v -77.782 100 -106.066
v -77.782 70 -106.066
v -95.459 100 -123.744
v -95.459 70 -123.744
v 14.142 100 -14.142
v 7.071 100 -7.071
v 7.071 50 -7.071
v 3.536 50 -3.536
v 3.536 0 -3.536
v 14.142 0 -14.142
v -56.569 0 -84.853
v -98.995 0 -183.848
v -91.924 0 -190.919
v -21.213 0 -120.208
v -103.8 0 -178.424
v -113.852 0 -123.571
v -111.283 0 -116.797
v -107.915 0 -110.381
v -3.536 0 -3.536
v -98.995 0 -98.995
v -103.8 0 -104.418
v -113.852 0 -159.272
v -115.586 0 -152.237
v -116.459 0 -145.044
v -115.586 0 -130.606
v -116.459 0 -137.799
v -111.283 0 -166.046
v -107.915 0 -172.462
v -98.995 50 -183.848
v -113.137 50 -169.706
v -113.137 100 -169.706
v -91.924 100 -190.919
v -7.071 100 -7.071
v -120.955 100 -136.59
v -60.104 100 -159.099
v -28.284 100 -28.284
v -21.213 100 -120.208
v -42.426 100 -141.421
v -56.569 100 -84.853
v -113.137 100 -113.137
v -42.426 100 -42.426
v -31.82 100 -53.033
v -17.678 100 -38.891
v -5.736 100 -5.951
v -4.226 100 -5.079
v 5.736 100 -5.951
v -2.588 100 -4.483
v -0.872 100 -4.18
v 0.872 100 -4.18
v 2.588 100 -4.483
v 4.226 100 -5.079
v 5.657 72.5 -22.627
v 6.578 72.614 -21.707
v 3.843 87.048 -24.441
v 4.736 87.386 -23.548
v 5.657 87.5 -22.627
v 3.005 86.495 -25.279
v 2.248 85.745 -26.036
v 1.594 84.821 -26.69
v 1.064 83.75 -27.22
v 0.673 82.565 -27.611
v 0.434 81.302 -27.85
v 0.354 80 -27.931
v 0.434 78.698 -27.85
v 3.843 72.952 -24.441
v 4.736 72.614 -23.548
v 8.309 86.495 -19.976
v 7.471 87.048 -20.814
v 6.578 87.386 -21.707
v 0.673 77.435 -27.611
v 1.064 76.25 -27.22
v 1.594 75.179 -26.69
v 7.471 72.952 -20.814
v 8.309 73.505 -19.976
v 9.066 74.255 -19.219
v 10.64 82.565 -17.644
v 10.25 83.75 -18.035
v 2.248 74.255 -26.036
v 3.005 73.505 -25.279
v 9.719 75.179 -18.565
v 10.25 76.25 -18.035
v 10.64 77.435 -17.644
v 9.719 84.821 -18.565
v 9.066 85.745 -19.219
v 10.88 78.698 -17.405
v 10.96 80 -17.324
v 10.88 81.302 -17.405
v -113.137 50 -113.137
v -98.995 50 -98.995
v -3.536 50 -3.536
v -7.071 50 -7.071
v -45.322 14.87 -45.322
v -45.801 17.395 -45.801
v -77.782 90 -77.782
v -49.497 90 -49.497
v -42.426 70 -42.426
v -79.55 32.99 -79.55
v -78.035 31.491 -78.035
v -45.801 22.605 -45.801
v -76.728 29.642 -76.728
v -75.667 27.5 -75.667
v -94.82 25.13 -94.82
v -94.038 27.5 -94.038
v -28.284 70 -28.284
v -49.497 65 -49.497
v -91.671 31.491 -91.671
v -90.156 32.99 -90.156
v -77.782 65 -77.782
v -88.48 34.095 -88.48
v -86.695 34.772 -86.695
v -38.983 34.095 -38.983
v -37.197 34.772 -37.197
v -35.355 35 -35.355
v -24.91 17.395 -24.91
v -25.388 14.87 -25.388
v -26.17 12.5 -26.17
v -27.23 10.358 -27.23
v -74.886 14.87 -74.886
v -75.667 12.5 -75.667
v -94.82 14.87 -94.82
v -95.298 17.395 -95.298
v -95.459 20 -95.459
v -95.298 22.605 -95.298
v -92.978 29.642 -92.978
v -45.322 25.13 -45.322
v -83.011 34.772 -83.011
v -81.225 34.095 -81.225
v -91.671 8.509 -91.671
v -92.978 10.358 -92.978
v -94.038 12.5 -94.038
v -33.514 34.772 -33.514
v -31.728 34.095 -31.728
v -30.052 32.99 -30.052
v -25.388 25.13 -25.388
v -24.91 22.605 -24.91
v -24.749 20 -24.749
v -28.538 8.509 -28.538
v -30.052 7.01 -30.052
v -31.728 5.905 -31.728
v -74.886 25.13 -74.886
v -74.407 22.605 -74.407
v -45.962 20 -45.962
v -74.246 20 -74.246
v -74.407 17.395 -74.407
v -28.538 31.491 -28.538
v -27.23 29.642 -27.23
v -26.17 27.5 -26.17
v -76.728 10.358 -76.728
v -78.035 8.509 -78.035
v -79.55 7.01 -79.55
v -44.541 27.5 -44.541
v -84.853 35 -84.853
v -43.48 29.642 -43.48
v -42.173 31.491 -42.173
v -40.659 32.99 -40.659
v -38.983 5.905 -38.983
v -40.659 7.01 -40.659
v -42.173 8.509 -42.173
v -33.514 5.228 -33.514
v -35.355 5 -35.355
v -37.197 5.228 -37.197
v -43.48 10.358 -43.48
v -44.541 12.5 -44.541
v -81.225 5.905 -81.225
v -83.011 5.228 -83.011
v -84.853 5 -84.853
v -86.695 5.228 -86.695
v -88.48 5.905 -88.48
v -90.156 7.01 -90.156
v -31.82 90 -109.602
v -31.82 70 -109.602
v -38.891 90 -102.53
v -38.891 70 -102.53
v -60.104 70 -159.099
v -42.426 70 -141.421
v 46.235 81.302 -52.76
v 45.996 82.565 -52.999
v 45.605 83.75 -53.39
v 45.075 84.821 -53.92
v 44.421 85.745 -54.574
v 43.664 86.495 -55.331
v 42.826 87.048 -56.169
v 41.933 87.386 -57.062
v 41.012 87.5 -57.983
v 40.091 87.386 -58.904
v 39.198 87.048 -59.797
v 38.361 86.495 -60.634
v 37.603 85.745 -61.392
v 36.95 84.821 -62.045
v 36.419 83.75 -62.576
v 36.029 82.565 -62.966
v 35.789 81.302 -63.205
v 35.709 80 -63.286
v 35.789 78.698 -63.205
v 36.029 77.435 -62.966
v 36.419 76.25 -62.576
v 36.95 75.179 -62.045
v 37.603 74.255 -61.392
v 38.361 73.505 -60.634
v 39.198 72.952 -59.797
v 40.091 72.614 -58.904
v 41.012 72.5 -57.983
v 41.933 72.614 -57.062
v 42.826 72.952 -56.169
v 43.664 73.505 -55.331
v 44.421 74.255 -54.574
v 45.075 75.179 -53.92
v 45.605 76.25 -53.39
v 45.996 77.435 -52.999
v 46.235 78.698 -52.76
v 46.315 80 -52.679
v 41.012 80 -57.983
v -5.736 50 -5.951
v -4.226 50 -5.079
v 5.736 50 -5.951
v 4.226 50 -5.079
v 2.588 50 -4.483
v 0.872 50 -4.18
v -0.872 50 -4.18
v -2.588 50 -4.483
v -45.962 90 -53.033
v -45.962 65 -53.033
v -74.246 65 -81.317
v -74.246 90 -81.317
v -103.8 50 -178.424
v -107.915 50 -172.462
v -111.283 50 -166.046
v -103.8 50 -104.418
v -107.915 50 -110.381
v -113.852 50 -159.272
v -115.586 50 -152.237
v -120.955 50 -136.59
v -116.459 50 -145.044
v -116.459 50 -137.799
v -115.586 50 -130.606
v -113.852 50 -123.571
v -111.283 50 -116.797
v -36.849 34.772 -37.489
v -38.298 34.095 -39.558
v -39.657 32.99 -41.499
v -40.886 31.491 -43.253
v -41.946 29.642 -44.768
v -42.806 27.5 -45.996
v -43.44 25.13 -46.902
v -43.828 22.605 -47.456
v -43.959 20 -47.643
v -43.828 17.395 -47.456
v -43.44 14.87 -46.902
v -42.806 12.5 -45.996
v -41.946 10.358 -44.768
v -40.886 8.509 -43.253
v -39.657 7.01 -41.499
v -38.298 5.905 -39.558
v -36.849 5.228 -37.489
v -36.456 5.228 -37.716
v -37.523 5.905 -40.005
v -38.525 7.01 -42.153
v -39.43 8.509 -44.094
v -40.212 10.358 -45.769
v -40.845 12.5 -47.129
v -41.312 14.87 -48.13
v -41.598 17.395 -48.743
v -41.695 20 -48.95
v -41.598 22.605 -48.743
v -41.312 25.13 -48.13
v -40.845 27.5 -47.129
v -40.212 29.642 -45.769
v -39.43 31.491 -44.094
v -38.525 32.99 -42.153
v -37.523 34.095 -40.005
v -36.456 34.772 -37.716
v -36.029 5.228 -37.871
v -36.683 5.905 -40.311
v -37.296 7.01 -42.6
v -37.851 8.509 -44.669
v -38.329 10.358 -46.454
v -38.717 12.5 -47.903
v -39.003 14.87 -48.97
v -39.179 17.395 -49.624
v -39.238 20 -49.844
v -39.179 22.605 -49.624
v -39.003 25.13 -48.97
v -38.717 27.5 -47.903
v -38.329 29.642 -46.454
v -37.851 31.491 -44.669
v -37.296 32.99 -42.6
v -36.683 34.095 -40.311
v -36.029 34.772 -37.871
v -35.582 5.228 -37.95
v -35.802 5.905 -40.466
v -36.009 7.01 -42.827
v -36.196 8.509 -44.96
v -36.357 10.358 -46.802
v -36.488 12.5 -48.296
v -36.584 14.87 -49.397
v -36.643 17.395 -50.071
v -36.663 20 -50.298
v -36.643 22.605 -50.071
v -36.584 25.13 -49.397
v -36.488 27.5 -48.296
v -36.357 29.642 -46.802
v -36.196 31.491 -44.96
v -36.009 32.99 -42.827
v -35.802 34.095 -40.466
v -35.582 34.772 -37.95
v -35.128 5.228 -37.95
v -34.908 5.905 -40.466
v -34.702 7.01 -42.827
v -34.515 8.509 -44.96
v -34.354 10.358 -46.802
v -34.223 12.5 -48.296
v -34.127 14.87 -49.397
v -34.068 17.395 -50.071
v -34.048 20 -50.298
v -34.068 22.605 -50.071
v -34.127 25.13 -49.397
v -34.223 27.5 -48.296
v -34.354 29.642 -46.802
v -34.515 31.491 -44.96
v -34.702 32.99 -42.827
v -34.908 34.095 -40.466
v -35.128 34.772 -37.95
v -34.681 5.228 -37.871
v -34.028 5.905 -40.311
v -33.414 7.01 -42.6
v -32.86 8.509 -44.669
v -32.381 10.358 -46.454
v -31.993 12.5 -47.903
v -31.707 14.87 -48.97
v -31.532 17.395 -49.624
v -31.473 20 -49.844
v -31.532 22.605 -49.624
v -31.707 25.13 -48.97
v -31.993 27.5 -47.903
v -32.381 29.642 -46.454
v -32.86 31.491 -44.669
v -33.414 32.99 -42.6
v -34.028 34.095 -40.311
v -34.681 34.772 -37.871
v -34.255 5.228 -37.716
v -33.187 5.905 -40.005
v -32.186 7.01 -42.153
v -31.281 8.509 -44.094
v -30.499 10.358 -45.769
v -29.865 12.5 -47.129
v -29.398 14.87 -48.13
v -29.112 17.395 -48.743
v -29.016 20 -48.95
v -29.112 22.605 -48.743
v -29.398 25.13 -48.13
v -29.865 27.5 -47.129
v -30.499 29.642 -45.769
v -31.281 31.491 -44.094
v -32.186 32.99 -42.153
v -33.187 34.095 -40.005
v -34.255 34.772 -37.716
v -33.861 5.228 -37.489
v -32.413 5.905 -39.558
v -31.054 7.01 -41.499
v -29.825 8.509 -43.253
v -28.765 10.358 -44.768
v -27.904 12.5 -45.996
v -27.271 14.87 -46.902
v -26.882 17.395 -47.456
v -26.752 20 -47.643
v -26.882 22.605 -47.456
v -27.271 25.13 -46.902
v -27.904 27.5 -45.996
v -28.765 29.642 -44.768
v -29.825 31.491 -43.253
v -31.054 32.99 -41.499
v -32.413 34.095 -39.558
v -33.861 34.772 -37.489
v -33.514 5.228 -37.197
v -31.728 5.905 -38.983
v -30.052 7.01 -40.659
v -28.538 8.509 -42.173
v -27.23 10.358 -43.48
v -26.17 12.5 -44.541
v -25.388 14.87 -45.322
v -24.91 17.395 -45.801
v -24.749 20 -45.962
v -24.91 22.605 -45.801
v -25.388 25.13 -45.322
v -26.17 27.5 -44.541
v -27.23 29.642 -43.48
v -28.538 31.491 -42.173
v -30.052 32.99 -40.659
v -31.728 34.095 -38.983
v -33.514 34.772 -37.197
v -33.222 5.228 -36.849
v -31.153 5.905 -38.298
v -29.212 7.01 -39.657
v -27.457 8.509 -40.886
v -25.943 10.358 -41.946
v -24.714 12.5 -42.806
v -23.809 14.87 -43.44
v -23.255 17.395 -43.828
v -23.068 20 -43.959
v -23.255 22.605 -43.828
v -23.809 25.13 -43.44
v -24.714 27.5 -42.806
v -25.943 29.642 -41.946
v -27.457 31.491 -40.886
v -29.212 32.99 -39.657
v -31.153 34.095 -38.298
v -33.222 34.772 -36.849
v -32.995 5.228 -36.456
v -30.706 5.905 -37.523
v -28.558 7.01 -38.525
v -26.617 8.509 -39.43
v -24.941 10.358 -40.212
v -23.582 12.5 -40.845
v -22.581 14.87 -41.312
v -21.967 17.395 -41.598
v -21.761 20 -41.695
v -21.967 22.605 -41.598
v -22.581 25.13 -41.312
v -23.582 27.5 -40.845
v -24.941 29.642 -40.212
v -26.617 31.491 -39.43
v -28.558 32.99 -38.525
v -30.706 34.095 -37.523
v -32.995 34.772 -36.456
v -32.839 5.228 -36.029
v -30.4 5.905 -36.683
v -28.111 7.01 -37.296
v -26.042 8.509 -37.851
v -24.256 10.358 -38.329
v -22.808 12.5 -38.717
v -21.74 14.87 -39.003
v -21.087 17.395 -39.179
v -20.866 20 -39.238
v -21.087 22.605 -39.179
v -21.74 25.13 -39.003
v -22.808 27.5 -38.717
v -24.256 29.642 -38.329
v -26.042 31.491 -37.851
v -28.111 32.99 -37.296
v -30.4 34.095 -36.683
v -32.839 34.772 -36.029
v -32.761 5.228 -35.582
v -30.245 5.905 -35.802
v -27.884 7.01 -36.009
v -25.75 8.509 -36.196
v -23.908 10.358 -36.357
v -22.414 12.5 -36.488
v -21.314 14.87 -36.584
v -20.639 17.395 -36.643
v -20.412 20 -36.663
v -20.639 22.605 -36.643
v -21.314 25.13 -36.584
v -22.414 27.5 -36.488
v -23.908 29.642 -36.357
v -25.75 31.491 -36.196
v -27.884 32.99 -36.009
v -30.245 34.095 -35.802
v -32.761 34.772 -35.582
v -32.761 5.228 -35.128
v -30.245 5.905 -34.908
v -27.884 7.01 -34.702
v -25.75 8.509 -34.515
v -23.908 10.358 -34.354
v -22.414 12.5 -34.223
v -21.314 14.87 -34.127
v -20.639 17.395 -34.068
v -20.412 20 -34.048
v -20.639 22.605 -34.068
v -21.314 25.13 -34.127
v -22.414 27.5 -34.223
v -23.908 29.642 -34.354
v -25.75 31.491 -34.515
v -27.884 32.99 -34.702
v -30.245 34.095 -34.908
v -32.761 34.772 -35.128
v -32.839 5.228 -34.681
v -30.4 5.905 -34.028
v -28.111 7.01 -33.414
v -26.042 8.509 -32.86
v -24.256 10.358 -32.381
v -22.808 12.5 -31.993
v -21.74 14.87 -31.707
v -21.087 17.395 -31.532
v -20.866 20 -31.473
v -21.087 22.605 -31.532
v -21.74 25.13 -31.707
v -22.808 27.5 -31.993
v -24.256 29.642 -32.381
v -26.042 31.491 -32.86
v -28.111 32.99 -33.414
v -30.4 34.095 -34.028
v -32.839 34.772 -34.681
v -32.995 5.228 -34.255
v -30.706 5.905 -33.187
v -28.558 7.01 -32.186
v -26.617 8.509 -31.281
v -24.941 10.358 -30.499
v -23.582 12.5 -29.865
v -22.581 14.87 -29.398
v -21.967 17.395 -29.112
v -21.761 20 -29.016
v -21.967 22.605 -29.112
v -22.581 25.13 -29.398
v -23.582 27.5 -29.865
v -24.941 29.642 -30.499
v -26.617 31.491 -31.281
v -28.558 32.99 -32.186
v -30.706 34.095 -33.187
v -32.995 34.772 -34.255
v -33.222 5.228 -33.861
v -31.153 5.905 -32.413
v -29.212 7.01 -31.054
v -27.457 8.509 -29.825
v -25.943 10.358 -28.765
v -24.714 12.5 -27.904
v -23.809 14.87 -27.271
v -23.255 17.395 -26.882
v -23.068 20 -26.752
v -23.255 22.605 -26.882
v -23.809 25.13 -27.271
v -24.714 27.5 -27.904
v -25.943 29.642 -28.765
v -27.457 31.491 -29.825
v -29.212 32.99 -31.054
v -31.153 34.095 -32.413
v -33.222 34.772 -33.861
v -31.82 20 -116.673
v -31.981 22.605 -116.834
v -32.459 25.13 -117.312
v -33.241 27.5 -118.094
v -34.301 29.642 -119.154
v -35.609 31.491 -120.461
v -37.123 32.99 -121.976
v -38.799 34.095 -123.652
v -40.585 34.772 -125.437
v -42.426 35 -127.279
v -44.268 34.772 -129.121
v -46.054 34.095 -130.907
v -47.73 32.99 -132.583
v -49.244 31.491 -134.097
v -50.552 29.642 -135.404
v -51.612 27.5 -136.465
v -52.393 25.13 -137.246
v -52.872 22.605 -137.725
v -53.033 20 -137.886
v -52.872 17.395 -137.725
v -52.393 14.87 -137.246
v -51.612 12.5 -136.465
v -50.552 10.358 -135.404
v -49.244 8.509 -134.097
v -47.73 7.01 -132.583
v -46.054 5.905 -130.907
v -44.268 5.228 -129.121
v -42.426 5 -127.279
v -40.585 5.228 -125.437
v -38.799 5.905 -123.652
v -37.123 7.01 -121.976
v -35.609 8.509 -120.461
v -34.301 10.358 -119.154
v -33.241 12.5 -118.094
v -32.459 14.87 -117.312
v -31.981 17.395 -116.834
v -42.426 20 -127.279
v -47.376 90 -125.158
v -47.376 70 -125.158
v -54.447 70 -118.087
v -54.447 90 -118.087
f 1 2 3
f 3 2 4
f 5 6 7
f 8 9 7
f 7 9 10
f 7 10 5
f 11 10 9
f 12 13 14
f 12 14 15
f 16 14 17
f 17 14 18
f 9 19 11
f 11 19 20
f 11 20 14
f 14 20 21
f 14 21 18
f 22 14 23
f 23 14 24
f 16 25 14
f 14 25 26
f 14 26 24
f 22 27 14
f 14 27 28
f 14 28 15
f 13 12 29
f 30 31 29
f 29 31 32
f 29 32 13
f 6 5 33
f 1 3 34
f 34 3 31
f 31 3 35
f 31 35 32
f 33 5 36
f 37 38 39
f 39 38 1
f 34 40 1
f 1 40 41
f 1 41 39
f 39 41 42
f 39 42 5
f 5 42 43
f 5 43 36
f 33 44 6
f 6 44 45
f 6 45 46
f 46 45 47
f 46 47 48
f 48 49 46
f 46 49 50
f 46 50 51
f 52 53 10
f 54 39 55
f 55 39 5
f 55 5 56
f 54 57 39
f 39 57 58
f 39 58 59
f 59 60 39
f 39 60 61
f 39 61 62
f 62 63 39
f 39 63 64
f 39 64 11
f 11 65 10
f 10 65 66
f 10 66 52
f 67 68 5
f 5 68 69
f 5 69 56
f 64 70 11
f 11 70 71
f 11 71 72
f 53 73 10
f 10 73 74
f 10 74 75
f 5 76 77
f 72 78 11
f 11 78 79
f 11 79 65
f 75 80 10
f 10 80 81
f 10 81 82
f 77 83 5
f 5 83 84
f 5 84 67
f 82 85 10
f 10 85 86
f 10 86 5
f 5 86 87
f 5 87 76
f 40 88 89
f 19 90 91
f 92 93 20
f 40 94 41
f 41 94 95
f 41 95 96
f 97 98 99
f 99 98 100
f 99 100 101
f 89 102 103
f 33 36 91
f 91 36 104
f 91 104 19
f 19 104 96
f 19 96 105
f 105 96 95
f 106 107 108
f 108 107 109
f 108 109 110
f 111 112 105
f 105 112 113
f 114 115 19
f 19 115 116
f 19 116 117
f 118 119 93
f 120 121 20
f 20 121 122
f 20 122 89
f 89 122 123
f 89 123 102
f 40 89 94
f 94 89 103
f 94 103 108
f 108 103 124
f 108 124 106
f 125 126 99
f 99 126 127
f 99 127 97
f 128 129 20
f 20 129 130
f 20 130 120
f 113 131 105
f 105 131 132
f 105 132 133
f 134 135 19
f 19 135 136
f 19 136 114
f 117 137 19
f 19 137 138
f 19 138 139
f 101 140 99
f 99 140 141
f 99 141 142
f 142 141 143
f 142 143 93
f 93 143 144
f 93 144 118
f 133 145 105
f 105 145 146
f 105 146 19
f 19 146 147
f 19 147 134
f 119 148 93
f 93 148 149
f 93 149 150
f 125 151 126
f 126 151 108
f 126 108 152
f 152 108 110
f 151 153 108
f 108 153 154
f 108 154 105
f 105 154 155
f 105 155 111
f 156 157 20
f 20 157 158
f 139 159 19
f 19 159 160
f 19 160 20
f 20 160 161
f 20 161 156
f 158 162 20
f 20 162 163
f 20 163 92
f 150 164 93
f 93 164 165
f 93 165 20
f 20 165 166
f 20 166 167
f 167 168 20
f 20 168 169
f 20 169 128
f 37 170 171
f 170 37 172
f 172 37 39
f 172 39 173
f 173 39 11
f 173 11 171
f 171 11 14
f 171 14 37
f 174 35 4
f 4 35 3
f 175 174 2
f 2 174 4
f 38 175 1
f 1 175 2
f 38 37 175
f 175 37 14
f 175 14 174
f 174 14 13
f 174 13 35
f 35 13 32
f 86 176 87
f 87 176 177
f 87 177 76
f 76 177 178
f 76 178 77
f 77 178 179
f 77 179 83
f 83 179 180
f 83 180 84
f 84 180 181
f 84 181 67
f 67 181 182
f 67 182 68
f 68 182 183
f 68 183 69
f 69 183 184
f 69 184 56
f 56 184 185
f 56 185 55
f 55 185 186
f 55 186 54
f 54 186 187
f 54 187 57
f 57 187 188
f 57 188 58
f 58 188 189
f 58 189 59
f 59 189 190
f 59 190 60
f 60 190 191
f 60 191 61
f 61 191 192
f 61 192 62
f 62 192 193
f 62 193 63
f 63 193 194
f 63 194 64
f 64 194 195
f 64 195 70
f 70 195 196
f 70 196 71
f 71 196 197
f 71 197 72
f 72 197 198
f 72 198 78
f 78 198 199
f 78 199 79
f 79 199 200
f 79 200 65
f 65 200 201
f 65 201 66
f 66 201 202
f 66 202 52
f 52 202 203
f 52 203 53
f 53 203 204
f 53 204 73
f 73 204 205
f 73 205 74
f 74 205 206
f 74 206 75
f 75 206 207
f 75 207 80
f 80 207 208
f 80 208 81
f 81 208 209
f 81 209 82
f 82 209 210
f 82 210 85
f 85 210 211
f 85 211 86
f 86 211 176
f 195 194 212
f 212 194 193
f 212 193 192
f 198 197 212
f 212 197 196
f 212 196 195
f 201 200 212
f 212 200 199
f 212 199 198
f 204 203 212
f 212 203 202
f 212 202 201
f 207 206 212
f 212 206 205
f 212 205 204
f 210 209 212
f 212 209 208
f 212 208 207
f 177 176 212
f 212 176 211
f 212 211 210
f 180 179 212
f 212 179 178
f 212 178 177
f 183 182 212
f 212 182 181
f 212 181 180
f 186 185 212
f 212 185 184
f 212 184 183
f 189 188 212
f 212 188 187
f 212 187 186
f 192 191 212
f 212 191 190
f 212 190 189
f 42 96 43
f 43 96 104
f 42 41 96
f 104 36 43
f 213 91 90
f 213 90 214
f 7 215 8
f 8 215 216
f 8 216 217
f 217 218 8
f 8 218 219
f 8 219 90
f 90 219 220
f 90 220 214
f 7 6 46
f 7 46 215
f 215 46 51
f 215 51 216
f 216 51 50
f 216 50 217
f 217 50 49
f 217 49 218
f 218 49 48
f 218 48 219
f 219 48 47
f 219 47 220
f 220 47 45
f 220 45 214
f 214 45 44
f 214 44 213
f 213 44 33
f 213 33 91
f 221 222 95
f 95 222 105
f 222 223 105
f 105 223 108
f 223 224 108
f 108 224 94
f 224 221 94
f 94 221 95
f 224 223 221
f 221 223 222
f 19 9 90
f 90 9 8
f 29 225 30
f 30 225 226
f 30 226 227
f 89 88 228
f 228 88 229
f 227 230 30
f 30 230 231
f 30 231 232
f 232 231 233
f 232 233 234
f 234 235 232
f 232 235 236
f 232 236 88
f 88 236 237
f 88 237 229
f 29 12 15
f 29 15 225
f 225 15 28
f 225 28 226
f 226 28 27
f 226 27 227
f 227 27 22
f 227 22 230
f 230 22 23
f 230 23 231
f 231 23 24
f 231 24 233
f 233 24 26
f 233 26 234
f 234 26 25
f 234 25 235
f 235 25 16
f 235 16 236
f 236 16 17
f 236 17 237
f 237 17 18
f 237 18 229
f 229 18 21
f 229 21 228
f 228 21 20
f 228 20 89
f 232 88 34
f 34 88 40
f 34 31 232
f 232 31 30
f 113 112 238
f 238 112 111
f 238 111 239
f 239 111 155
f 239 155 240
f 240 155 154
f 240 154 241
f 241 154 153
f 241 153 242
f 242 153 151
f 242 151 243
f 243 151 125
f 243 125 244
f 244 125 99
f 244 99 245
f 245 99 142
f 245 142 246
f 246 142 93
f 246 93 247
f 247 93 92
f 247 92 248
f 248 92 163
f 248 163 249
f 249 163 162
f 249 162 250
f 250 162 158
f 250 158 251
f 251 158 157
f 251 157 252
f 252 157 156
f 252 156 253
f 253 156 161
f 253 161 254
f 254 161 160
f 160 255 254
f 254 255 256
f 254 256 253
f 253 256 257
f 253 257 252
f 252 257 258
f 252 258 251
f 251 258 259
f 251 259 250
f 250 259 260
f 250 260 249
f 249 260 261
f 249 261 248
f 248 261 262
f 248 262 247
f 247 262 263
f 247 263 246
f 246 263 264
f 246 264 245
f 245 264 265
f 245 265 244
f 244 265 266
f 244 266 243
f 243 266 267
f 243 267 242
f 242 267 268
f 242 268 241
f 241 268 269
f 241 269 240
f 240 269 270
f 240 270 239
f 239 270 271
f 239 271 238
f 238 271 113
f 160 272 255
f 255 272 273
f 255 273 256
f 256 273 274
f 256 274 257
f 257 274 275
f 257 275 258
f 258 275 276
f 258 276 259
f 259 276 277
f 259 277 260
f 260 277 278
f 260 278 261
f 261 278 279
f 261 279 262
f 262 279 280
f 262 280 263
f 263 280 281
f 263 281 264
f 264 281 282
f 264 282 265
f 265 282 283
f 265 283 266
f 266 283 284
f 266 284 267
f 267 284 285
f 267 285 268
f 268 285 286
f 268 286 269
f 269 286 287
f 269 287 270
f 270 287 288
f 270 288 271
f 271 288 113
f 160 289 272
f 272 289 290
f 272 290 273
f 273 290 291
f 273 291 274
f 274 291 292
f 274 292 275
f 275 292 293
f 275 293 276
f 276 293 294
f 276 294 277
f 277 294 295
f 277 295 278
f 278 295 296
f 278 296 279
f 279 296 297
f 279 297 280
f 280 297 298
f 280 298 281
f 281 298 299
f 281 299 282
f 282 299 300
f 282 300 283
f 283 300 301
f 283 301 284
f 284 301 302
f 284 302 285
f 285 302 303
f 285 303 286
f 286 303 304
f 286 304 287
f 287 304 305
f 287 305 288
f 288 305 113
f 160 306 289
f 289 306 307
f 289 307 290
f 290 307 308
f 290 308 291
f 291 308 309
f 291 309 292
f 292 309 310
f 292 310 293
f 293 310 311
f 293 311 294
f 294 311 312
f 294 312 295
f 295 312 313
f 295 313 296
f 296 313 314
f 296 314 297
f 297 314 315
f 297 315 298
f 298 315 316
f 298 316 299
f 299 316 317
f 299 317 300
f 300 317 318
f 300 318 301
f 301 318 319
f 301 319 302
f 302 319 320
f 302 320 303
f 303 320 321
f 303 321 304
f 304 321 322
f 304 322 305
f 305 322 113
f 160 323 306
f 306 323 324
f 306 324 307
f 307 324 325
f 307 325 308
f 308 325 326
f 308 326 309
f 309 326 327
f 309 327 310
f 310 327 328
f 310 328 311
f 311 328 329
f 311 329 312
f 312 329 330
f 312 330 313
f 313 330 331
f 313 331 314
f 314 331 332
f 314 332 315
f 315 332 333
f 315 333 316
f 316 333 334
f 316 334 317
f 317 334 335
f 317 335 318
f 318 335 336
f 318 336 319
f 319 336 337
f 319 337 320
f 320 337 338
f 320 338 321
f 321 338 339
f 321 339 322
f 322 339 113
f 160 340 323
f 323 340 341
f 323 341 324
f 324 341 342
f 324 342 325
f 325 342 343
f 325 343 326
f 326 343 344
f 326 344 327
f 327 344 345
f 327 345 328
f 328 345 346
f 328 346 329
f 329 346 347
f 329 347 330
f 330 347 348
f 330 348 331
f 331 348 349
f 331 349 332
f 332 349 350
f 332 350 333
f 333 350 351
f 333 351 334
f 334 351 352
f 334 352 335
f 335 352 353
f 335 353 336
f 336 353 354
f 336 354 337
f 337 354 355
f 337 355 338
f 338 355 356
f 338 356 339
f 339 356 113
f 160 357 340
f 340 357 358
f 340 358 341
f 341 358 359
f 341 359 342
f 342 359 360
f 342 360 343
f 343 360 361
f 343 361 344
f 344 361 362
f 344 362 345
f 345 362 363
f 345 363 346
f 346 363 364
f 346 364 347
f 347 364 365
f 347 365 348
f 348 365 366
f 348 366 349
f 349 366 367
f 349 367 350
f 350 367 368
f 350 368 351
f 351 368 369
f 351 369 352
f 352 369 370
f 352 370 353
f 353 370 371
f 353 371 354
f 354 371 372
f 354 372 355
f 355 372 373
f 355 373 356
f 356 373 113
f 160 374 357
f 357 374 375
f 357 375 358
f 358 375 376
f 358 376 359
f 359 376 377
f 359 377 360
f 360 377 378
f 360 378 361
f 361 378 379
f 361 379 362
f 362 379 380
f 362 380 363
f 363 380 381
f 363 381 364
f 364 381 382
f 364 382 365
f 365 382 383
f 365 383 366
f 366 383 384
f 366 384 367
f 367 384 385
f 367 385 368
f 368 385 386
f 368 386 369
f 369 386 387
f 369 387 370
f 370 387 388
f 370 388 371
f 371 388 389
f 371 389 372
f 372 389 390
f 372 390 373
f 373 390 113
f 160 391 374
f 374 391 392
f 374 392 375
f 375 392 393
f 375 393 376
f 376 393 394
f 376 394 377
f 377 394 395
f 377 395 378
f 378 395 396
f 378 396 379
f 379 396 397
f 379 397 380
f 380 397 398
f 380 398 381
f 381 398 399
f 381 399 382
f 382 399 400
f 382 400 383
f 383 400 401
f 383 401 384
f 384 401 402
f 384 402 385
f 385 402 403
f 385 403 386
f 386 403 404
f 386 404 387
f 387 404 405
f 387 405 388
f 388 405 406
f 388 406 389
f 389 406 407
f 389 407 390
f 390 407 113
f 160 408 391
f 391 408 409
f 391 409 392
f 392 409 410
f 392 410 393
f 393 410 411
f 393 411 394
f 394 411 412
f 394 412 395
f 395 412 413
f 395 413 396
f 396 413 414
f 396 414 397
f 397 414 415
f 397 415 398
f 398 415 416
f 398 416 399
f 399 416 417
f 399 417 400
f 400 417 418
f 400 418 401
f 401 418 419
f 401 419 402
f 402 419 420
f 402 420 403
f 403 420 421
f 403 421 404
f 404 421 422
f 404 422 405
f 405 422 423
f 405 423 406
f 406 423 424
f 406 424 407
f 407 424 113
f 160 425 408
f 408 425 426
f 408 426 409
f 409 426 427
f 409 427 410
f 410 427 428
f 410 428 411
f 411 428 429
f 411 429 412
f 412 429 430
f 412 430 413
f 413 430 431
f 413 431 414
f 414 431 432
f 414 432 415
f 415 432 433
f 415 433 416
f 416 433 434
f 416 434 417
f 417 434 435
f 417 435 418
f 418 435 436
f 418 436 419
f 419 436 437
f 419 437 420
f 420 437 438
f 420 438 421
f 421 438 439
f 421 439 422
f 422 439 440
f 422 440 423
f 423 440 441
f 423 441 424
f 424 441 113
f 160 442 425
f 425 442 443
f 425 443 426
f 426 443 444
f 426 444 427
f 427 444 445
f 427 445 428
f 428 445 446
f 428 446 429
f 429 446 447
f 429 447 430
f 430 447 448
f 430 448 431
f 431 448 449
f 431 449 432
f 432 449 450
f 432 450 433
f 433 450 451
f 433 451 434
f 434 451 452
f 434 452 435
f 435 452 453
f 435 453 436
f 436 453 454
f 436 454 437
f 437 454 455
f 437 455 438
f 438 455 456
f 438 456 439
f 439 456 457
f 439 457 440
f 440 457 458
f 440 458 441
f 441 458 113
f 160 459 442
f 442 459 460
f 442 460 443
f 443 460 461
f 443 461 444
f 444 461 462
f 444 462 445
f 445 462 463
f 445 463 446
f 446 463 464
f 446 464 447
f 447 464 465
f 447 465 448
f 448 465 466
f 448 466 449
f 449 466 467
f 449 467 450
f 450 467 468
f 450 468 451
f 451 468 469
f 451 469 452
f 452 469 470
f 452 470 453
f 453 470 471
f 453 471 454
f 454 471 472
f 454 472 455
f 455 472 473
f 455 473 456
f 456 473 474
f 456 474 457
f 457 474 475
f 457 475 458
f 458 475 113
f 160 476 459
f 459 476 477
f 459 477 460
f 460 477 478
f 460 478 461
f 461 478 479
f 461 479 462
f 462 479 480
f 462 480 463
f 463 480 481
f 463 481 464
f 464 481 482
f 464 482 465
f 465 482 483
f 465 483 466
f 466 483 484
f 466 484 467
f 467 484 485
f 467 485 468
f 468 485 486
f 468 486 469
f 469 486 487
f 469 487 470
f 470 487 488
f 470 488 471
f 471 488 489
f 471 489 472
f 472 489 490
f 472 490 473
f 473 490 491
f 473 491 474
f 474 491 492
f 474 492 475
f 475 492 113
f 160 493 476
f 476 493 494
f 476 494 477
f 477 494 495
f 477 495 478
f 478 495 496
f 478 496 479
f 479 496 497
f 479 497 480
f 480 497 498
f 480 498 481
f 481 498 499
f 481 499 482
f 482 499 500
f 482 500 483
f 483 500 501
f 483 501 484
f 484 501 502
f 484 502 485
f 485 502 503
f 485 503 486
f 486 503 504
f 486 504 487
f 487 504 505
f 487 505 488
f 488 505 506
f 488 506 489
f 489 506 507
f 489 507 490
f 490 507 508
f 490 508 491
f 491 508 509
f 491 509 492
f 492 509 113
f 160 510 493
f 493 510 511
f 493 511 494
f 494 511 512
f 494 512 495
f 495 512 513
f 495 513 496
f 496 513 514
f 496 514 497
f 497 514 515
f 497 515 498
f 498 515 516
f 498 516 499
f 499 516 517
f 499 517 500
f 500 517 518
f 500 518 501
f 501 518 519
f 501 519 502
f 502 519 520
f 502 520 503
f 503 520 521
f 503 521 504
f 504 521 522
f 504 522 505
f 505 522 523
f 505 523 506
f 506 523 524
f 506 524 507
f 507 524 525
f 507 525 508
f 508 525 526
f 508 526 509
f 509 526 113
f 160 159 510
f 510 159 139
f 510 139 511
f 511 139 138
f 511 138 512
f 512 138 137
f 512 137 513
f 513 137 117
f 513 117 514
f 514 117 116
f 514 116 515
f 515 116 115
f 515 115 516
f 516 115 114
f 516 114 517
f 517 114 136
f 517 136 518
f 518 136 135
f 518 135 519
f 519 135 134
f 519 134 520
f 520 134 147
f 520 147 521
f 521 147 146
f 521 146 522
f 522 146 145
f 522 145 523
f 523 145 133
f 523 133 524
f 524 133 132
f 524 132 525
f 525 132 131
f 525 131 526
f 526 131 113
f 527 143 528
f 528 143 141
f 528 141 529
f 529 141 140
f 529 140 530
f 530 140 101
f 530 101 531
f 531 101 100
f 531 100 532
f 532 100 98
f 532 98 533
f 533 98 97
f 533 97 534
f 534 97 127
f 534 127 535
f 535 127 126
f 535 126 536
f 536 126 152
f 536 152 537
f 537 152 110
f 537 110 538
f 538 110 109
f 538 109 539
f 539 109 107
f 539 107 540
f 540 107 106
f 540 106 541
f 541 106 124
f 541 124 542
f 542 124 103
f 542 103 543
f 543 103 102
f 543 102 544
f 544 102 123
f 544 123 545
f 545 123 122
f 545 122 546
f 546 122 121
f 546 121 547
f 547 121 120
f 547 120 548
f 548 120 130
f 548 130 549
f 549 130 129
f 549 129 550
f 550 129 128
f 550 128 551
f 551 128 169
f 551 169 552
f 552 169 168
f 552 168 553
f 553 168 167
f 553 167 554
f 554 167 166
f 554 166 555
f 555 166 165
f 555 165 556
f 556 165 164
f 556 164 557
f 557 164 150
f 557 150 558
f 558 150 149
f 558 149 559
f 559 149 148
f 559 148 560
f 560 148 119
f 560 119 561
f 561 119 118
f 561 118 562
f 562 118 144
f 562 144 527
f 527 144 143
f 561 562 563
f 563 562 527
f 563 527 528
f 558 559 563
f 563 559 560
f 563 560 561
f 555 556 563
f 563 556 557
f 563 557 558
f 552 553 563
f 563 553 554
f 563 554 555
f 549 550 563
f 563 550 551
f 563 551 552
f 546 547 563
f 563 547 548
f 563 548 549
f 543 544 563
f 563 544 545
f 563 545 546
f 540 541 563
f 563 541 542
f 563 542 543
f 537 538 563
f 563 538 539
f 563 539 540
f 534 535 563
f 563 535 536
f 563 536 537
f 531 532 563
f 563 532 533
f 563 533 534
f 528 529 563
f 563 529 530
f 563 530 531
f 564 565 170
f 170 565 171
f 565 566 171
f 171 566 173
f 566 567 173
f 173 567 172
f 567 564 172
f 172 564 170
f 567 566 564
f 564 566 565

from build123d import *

# Parameters (mm, degrees)
SKICA1_W                 = 200
SKICA1_H                 = 100
P_IDAT_VYSUNUT_M1_DEPTH  = 20
P_IDAT_VYSUNUT_M2_DEPTH  = 50
SKICA7_R                 = 7.5
P_IDAT_VYSUNUT_M3_DEPTH  = 50
ODEBRAT_VYSUNUT_M3_DEPTH = 10
ZAOBLIT1_START           = 50
ZAOBLIT1_DEPTH           = 51
SKICA9_W                 = 40
SKICA9_H                 = 25
ODEBRAT_VYSUNUT_M4_DEPTH = 5
CHAMFER2_SIZE            = 5
FILLET2_DEPTH            = 50
CHAMFER3_SIZE            = 40
CHAMFER3_SIZE2           = 20
CHAMFER4_SIZE            = 20
SKETCH3_R                = 15
CUT_EXTRUDE2_DEPTH       = 60
SKETCH4_W                = 10
SKETCH4_H                = 20
CUT_EXTRUDE3_DEPTH       = 22


with BuildPart() as part:
    # Skica1 → Přidat vysunutím1 (new body)
    with BuildSketch(Plane(origin=(0, 0, 0), x_dir=(-0.7071067811865476, 0, -0.7071067811865476), z_dir=(0.7071067811865476, 0, -0.7071067811865476))):
        with Locations((100, 50)):
            Rectangle(SKICA1_W, SKICA1_H)
    extrude(amount=P_IDAT_VYSUNUT_M1_DEPTH)

    # Skica2 → Přidat vysunutím2 (add)
    with BuildSketch(Plane(origin=(14.142135624, 0, -14.142135624), x_dir=(-0.7071067811865478, 0, -0.7071067811865472), z_dir=(0.7071067811865472, 0, -0.7071067811865478))):
        Polygon((100, 0), (200, 0), (200, 100), (155, 100), (155, 70), (130, 70), (130, 100), (100, 100), align=None)
    extrude(amount=P_IDAT_VYSUNUT_M2_DEPTH)

    # Skica7 → Přidat vysunutím3 (add)
    with BuildSketch(Plane(origin=(14.142135624, 0, -14.142135624), x_dir=(-0.7071067811865478, 0, -0.7071067811865472), z_dir=(0.7071067811865472, 0, -0.7071067811865478))):
        with Locations(Location((12, 80, 0), (0, 0, 180))):
            Circle(SKICA7_R)
    extrude(amount=P_IDAT_VYSUNUT_M3_DEPTH)

    # Skica8 → Odebrat vysunutím3 (cut, symmetric)
    with BuildSketch(Plane(origin=(-35.355339059, 0, -35.355339059), x_dir=(0.7071067811865476, 0, -0.7071067811865475), z_dir=(0.7071067811865475, 0, 0.7071067811865476))):
        Polygon((0, 100), (0, 70), (15, 100), align=None)
    extrude(amount=ODEBRAT_VYSUNUT_M3_DEPTH, both=True, mode=Mode.SUBTRACT)

    # Zaoblit1: read off the stored shape, not the designer's step
    # Zaoblit1 outline → Zaoblit1 (cut)
    with BuildSketch(Plane(origin=(0, 0, 0), x_dir=(1, 0, 0), z_dir=(0, 1, 0)).offset(ZAOBLIT1_START)):
        with BuildLine():
            ThreePointArc((7.071067812, 7.071067812), (0, 4.142135624), (-7.071067812, 7.071067812))
            Line((-7.071067812, 7.071067812), (0, 0))
            Line((0, 0), (7.071067812, 7.071067812))
        make_face()
    extrude(amount=ZAOBLIT1_DEPTH, mode=Mode.SUBTRACT)

    # Skica9 → Odebrat vysunutím4 (cut)
    with BuildSketch(Plane(origin=(0, 0, 0), x_dir=(0.7071067811865478, 0, 0.7071067811865472), z_dir=(-0.7071067811865472, 0, 0.7071067811865478))):
        with Locations((-90, 77.5)):
            Rectangle(SKICA9_W, SKICA9_H)
    extrude(amount=-ODEBRAT_VYSUNUT_M4_DEPTH, mode=Mode.SUBTRACT)

    # Chamfer2
    chamfer2_edges = [part.edges().sort_by_distance(p)[0] for p in [
        (0, 25, 0),
    ]]
    chamfer(chamfer2_edges, length=CHAMFER2_SIZE)

    # Fillet2: read off the stored shape, not the designer's step
    # Fillet2 outline → Fillet2 (cut)
    with BuildSketch(Plane(origin=(0, 0, 0), x_dir=(1, 0, 0), z_dir=(0, 1, 0))):
        with BuildLine():
            Line((-141.421356237, 141.421356237), (-98.994949366, 98.994949366))
            ThreePointArc((-98.994949366, 98.994949366), (-116.568542495, 141.421356238), (-98.994949366, 183.847763109))
            Line((-98.994949366, 183.847763109), (-141.421356237, 141.421356237))
        make_face()
    extrude(amount=FILLET2_DEPTH, mode=Mode.SUBTRACT)

    # Chamfer3
    chamfer3_edges = [part.edges().sort_by_distance(p)[0] for p in [
        (-141.421356237, 75, -141.421356237),
    ]]
    chamfer3_side = [part.faces().sort_by_distance(p)[0] for p in [
        (-65.974510685, 51.38225256, -65.974510685),
    ]]
    chamfer(chamfer3_edges, length=CHAMFER3_SIZE, length2=CHAMFER3_SIZE2, reference=chamfer3_side[0])

    # Chamfer4
    chamfer4_edges = [part.edges().sort_by_distance(p)[0] for p in [
        (-127.279220614, 75, -155.563491861),
    ]]
    chamfer(chamfer4_edges, length=CHAMFER4_SIZE)

    # Sketch2 → Cut-Revolve4 (revolve, cut)
    with BuildSketch(Plane(origin=(0, 0, 0), x_dir=(0.7071067811865478, 0, 0.7071067811865472), z_dir=(-0.7071067811865472, 0, 0.7071067811865478))):
        with BuildLine():
            Line((-50, 35), (-50, 5))
            ThreePointArc((-50, 5), (-35, 20), (-50, 35))
        make_face()
    revolve(axis=Axis((-35.355339059, 35, -35.355339059), (0, -1, 0)), mode=Mode.SUBTRACT)

    # Sketch3 → Cut-Extrude2 (cut)
    with BuildSketch(Plane(origin=(0, 0, 0), x_dir=(0.7071067811865478, 0, 0.7071067811865472), z_dir=(-0.7071067811865472, 0, 0.7071067811865478))):
        with Locations((-120, 20)):
            Circle(SKETCH3_R)
    extrude(amount=-CUT_EXTRUDE2_DEPTH, mode=Mode.SUBTRACT)

    # Sketch4 → Cut-Extrude3 (cut)
    with BuildSketch(Plane(origin=(-70.710678119, 0, -70.710678119), x_dir=(0.7071067811865472, 0, -0.7071067811865478), z_dir=(0.7071067811865478, 0, 0.7071067811865472))):
        with Locations((50, 80)):
            Rectangle(SKETCH4_W, SKETCH4_H)
    extrude(amount=-CUT_EXTRUDE3_DEPTH, mode=Mode.SUBTRACT)


solid = part.part
